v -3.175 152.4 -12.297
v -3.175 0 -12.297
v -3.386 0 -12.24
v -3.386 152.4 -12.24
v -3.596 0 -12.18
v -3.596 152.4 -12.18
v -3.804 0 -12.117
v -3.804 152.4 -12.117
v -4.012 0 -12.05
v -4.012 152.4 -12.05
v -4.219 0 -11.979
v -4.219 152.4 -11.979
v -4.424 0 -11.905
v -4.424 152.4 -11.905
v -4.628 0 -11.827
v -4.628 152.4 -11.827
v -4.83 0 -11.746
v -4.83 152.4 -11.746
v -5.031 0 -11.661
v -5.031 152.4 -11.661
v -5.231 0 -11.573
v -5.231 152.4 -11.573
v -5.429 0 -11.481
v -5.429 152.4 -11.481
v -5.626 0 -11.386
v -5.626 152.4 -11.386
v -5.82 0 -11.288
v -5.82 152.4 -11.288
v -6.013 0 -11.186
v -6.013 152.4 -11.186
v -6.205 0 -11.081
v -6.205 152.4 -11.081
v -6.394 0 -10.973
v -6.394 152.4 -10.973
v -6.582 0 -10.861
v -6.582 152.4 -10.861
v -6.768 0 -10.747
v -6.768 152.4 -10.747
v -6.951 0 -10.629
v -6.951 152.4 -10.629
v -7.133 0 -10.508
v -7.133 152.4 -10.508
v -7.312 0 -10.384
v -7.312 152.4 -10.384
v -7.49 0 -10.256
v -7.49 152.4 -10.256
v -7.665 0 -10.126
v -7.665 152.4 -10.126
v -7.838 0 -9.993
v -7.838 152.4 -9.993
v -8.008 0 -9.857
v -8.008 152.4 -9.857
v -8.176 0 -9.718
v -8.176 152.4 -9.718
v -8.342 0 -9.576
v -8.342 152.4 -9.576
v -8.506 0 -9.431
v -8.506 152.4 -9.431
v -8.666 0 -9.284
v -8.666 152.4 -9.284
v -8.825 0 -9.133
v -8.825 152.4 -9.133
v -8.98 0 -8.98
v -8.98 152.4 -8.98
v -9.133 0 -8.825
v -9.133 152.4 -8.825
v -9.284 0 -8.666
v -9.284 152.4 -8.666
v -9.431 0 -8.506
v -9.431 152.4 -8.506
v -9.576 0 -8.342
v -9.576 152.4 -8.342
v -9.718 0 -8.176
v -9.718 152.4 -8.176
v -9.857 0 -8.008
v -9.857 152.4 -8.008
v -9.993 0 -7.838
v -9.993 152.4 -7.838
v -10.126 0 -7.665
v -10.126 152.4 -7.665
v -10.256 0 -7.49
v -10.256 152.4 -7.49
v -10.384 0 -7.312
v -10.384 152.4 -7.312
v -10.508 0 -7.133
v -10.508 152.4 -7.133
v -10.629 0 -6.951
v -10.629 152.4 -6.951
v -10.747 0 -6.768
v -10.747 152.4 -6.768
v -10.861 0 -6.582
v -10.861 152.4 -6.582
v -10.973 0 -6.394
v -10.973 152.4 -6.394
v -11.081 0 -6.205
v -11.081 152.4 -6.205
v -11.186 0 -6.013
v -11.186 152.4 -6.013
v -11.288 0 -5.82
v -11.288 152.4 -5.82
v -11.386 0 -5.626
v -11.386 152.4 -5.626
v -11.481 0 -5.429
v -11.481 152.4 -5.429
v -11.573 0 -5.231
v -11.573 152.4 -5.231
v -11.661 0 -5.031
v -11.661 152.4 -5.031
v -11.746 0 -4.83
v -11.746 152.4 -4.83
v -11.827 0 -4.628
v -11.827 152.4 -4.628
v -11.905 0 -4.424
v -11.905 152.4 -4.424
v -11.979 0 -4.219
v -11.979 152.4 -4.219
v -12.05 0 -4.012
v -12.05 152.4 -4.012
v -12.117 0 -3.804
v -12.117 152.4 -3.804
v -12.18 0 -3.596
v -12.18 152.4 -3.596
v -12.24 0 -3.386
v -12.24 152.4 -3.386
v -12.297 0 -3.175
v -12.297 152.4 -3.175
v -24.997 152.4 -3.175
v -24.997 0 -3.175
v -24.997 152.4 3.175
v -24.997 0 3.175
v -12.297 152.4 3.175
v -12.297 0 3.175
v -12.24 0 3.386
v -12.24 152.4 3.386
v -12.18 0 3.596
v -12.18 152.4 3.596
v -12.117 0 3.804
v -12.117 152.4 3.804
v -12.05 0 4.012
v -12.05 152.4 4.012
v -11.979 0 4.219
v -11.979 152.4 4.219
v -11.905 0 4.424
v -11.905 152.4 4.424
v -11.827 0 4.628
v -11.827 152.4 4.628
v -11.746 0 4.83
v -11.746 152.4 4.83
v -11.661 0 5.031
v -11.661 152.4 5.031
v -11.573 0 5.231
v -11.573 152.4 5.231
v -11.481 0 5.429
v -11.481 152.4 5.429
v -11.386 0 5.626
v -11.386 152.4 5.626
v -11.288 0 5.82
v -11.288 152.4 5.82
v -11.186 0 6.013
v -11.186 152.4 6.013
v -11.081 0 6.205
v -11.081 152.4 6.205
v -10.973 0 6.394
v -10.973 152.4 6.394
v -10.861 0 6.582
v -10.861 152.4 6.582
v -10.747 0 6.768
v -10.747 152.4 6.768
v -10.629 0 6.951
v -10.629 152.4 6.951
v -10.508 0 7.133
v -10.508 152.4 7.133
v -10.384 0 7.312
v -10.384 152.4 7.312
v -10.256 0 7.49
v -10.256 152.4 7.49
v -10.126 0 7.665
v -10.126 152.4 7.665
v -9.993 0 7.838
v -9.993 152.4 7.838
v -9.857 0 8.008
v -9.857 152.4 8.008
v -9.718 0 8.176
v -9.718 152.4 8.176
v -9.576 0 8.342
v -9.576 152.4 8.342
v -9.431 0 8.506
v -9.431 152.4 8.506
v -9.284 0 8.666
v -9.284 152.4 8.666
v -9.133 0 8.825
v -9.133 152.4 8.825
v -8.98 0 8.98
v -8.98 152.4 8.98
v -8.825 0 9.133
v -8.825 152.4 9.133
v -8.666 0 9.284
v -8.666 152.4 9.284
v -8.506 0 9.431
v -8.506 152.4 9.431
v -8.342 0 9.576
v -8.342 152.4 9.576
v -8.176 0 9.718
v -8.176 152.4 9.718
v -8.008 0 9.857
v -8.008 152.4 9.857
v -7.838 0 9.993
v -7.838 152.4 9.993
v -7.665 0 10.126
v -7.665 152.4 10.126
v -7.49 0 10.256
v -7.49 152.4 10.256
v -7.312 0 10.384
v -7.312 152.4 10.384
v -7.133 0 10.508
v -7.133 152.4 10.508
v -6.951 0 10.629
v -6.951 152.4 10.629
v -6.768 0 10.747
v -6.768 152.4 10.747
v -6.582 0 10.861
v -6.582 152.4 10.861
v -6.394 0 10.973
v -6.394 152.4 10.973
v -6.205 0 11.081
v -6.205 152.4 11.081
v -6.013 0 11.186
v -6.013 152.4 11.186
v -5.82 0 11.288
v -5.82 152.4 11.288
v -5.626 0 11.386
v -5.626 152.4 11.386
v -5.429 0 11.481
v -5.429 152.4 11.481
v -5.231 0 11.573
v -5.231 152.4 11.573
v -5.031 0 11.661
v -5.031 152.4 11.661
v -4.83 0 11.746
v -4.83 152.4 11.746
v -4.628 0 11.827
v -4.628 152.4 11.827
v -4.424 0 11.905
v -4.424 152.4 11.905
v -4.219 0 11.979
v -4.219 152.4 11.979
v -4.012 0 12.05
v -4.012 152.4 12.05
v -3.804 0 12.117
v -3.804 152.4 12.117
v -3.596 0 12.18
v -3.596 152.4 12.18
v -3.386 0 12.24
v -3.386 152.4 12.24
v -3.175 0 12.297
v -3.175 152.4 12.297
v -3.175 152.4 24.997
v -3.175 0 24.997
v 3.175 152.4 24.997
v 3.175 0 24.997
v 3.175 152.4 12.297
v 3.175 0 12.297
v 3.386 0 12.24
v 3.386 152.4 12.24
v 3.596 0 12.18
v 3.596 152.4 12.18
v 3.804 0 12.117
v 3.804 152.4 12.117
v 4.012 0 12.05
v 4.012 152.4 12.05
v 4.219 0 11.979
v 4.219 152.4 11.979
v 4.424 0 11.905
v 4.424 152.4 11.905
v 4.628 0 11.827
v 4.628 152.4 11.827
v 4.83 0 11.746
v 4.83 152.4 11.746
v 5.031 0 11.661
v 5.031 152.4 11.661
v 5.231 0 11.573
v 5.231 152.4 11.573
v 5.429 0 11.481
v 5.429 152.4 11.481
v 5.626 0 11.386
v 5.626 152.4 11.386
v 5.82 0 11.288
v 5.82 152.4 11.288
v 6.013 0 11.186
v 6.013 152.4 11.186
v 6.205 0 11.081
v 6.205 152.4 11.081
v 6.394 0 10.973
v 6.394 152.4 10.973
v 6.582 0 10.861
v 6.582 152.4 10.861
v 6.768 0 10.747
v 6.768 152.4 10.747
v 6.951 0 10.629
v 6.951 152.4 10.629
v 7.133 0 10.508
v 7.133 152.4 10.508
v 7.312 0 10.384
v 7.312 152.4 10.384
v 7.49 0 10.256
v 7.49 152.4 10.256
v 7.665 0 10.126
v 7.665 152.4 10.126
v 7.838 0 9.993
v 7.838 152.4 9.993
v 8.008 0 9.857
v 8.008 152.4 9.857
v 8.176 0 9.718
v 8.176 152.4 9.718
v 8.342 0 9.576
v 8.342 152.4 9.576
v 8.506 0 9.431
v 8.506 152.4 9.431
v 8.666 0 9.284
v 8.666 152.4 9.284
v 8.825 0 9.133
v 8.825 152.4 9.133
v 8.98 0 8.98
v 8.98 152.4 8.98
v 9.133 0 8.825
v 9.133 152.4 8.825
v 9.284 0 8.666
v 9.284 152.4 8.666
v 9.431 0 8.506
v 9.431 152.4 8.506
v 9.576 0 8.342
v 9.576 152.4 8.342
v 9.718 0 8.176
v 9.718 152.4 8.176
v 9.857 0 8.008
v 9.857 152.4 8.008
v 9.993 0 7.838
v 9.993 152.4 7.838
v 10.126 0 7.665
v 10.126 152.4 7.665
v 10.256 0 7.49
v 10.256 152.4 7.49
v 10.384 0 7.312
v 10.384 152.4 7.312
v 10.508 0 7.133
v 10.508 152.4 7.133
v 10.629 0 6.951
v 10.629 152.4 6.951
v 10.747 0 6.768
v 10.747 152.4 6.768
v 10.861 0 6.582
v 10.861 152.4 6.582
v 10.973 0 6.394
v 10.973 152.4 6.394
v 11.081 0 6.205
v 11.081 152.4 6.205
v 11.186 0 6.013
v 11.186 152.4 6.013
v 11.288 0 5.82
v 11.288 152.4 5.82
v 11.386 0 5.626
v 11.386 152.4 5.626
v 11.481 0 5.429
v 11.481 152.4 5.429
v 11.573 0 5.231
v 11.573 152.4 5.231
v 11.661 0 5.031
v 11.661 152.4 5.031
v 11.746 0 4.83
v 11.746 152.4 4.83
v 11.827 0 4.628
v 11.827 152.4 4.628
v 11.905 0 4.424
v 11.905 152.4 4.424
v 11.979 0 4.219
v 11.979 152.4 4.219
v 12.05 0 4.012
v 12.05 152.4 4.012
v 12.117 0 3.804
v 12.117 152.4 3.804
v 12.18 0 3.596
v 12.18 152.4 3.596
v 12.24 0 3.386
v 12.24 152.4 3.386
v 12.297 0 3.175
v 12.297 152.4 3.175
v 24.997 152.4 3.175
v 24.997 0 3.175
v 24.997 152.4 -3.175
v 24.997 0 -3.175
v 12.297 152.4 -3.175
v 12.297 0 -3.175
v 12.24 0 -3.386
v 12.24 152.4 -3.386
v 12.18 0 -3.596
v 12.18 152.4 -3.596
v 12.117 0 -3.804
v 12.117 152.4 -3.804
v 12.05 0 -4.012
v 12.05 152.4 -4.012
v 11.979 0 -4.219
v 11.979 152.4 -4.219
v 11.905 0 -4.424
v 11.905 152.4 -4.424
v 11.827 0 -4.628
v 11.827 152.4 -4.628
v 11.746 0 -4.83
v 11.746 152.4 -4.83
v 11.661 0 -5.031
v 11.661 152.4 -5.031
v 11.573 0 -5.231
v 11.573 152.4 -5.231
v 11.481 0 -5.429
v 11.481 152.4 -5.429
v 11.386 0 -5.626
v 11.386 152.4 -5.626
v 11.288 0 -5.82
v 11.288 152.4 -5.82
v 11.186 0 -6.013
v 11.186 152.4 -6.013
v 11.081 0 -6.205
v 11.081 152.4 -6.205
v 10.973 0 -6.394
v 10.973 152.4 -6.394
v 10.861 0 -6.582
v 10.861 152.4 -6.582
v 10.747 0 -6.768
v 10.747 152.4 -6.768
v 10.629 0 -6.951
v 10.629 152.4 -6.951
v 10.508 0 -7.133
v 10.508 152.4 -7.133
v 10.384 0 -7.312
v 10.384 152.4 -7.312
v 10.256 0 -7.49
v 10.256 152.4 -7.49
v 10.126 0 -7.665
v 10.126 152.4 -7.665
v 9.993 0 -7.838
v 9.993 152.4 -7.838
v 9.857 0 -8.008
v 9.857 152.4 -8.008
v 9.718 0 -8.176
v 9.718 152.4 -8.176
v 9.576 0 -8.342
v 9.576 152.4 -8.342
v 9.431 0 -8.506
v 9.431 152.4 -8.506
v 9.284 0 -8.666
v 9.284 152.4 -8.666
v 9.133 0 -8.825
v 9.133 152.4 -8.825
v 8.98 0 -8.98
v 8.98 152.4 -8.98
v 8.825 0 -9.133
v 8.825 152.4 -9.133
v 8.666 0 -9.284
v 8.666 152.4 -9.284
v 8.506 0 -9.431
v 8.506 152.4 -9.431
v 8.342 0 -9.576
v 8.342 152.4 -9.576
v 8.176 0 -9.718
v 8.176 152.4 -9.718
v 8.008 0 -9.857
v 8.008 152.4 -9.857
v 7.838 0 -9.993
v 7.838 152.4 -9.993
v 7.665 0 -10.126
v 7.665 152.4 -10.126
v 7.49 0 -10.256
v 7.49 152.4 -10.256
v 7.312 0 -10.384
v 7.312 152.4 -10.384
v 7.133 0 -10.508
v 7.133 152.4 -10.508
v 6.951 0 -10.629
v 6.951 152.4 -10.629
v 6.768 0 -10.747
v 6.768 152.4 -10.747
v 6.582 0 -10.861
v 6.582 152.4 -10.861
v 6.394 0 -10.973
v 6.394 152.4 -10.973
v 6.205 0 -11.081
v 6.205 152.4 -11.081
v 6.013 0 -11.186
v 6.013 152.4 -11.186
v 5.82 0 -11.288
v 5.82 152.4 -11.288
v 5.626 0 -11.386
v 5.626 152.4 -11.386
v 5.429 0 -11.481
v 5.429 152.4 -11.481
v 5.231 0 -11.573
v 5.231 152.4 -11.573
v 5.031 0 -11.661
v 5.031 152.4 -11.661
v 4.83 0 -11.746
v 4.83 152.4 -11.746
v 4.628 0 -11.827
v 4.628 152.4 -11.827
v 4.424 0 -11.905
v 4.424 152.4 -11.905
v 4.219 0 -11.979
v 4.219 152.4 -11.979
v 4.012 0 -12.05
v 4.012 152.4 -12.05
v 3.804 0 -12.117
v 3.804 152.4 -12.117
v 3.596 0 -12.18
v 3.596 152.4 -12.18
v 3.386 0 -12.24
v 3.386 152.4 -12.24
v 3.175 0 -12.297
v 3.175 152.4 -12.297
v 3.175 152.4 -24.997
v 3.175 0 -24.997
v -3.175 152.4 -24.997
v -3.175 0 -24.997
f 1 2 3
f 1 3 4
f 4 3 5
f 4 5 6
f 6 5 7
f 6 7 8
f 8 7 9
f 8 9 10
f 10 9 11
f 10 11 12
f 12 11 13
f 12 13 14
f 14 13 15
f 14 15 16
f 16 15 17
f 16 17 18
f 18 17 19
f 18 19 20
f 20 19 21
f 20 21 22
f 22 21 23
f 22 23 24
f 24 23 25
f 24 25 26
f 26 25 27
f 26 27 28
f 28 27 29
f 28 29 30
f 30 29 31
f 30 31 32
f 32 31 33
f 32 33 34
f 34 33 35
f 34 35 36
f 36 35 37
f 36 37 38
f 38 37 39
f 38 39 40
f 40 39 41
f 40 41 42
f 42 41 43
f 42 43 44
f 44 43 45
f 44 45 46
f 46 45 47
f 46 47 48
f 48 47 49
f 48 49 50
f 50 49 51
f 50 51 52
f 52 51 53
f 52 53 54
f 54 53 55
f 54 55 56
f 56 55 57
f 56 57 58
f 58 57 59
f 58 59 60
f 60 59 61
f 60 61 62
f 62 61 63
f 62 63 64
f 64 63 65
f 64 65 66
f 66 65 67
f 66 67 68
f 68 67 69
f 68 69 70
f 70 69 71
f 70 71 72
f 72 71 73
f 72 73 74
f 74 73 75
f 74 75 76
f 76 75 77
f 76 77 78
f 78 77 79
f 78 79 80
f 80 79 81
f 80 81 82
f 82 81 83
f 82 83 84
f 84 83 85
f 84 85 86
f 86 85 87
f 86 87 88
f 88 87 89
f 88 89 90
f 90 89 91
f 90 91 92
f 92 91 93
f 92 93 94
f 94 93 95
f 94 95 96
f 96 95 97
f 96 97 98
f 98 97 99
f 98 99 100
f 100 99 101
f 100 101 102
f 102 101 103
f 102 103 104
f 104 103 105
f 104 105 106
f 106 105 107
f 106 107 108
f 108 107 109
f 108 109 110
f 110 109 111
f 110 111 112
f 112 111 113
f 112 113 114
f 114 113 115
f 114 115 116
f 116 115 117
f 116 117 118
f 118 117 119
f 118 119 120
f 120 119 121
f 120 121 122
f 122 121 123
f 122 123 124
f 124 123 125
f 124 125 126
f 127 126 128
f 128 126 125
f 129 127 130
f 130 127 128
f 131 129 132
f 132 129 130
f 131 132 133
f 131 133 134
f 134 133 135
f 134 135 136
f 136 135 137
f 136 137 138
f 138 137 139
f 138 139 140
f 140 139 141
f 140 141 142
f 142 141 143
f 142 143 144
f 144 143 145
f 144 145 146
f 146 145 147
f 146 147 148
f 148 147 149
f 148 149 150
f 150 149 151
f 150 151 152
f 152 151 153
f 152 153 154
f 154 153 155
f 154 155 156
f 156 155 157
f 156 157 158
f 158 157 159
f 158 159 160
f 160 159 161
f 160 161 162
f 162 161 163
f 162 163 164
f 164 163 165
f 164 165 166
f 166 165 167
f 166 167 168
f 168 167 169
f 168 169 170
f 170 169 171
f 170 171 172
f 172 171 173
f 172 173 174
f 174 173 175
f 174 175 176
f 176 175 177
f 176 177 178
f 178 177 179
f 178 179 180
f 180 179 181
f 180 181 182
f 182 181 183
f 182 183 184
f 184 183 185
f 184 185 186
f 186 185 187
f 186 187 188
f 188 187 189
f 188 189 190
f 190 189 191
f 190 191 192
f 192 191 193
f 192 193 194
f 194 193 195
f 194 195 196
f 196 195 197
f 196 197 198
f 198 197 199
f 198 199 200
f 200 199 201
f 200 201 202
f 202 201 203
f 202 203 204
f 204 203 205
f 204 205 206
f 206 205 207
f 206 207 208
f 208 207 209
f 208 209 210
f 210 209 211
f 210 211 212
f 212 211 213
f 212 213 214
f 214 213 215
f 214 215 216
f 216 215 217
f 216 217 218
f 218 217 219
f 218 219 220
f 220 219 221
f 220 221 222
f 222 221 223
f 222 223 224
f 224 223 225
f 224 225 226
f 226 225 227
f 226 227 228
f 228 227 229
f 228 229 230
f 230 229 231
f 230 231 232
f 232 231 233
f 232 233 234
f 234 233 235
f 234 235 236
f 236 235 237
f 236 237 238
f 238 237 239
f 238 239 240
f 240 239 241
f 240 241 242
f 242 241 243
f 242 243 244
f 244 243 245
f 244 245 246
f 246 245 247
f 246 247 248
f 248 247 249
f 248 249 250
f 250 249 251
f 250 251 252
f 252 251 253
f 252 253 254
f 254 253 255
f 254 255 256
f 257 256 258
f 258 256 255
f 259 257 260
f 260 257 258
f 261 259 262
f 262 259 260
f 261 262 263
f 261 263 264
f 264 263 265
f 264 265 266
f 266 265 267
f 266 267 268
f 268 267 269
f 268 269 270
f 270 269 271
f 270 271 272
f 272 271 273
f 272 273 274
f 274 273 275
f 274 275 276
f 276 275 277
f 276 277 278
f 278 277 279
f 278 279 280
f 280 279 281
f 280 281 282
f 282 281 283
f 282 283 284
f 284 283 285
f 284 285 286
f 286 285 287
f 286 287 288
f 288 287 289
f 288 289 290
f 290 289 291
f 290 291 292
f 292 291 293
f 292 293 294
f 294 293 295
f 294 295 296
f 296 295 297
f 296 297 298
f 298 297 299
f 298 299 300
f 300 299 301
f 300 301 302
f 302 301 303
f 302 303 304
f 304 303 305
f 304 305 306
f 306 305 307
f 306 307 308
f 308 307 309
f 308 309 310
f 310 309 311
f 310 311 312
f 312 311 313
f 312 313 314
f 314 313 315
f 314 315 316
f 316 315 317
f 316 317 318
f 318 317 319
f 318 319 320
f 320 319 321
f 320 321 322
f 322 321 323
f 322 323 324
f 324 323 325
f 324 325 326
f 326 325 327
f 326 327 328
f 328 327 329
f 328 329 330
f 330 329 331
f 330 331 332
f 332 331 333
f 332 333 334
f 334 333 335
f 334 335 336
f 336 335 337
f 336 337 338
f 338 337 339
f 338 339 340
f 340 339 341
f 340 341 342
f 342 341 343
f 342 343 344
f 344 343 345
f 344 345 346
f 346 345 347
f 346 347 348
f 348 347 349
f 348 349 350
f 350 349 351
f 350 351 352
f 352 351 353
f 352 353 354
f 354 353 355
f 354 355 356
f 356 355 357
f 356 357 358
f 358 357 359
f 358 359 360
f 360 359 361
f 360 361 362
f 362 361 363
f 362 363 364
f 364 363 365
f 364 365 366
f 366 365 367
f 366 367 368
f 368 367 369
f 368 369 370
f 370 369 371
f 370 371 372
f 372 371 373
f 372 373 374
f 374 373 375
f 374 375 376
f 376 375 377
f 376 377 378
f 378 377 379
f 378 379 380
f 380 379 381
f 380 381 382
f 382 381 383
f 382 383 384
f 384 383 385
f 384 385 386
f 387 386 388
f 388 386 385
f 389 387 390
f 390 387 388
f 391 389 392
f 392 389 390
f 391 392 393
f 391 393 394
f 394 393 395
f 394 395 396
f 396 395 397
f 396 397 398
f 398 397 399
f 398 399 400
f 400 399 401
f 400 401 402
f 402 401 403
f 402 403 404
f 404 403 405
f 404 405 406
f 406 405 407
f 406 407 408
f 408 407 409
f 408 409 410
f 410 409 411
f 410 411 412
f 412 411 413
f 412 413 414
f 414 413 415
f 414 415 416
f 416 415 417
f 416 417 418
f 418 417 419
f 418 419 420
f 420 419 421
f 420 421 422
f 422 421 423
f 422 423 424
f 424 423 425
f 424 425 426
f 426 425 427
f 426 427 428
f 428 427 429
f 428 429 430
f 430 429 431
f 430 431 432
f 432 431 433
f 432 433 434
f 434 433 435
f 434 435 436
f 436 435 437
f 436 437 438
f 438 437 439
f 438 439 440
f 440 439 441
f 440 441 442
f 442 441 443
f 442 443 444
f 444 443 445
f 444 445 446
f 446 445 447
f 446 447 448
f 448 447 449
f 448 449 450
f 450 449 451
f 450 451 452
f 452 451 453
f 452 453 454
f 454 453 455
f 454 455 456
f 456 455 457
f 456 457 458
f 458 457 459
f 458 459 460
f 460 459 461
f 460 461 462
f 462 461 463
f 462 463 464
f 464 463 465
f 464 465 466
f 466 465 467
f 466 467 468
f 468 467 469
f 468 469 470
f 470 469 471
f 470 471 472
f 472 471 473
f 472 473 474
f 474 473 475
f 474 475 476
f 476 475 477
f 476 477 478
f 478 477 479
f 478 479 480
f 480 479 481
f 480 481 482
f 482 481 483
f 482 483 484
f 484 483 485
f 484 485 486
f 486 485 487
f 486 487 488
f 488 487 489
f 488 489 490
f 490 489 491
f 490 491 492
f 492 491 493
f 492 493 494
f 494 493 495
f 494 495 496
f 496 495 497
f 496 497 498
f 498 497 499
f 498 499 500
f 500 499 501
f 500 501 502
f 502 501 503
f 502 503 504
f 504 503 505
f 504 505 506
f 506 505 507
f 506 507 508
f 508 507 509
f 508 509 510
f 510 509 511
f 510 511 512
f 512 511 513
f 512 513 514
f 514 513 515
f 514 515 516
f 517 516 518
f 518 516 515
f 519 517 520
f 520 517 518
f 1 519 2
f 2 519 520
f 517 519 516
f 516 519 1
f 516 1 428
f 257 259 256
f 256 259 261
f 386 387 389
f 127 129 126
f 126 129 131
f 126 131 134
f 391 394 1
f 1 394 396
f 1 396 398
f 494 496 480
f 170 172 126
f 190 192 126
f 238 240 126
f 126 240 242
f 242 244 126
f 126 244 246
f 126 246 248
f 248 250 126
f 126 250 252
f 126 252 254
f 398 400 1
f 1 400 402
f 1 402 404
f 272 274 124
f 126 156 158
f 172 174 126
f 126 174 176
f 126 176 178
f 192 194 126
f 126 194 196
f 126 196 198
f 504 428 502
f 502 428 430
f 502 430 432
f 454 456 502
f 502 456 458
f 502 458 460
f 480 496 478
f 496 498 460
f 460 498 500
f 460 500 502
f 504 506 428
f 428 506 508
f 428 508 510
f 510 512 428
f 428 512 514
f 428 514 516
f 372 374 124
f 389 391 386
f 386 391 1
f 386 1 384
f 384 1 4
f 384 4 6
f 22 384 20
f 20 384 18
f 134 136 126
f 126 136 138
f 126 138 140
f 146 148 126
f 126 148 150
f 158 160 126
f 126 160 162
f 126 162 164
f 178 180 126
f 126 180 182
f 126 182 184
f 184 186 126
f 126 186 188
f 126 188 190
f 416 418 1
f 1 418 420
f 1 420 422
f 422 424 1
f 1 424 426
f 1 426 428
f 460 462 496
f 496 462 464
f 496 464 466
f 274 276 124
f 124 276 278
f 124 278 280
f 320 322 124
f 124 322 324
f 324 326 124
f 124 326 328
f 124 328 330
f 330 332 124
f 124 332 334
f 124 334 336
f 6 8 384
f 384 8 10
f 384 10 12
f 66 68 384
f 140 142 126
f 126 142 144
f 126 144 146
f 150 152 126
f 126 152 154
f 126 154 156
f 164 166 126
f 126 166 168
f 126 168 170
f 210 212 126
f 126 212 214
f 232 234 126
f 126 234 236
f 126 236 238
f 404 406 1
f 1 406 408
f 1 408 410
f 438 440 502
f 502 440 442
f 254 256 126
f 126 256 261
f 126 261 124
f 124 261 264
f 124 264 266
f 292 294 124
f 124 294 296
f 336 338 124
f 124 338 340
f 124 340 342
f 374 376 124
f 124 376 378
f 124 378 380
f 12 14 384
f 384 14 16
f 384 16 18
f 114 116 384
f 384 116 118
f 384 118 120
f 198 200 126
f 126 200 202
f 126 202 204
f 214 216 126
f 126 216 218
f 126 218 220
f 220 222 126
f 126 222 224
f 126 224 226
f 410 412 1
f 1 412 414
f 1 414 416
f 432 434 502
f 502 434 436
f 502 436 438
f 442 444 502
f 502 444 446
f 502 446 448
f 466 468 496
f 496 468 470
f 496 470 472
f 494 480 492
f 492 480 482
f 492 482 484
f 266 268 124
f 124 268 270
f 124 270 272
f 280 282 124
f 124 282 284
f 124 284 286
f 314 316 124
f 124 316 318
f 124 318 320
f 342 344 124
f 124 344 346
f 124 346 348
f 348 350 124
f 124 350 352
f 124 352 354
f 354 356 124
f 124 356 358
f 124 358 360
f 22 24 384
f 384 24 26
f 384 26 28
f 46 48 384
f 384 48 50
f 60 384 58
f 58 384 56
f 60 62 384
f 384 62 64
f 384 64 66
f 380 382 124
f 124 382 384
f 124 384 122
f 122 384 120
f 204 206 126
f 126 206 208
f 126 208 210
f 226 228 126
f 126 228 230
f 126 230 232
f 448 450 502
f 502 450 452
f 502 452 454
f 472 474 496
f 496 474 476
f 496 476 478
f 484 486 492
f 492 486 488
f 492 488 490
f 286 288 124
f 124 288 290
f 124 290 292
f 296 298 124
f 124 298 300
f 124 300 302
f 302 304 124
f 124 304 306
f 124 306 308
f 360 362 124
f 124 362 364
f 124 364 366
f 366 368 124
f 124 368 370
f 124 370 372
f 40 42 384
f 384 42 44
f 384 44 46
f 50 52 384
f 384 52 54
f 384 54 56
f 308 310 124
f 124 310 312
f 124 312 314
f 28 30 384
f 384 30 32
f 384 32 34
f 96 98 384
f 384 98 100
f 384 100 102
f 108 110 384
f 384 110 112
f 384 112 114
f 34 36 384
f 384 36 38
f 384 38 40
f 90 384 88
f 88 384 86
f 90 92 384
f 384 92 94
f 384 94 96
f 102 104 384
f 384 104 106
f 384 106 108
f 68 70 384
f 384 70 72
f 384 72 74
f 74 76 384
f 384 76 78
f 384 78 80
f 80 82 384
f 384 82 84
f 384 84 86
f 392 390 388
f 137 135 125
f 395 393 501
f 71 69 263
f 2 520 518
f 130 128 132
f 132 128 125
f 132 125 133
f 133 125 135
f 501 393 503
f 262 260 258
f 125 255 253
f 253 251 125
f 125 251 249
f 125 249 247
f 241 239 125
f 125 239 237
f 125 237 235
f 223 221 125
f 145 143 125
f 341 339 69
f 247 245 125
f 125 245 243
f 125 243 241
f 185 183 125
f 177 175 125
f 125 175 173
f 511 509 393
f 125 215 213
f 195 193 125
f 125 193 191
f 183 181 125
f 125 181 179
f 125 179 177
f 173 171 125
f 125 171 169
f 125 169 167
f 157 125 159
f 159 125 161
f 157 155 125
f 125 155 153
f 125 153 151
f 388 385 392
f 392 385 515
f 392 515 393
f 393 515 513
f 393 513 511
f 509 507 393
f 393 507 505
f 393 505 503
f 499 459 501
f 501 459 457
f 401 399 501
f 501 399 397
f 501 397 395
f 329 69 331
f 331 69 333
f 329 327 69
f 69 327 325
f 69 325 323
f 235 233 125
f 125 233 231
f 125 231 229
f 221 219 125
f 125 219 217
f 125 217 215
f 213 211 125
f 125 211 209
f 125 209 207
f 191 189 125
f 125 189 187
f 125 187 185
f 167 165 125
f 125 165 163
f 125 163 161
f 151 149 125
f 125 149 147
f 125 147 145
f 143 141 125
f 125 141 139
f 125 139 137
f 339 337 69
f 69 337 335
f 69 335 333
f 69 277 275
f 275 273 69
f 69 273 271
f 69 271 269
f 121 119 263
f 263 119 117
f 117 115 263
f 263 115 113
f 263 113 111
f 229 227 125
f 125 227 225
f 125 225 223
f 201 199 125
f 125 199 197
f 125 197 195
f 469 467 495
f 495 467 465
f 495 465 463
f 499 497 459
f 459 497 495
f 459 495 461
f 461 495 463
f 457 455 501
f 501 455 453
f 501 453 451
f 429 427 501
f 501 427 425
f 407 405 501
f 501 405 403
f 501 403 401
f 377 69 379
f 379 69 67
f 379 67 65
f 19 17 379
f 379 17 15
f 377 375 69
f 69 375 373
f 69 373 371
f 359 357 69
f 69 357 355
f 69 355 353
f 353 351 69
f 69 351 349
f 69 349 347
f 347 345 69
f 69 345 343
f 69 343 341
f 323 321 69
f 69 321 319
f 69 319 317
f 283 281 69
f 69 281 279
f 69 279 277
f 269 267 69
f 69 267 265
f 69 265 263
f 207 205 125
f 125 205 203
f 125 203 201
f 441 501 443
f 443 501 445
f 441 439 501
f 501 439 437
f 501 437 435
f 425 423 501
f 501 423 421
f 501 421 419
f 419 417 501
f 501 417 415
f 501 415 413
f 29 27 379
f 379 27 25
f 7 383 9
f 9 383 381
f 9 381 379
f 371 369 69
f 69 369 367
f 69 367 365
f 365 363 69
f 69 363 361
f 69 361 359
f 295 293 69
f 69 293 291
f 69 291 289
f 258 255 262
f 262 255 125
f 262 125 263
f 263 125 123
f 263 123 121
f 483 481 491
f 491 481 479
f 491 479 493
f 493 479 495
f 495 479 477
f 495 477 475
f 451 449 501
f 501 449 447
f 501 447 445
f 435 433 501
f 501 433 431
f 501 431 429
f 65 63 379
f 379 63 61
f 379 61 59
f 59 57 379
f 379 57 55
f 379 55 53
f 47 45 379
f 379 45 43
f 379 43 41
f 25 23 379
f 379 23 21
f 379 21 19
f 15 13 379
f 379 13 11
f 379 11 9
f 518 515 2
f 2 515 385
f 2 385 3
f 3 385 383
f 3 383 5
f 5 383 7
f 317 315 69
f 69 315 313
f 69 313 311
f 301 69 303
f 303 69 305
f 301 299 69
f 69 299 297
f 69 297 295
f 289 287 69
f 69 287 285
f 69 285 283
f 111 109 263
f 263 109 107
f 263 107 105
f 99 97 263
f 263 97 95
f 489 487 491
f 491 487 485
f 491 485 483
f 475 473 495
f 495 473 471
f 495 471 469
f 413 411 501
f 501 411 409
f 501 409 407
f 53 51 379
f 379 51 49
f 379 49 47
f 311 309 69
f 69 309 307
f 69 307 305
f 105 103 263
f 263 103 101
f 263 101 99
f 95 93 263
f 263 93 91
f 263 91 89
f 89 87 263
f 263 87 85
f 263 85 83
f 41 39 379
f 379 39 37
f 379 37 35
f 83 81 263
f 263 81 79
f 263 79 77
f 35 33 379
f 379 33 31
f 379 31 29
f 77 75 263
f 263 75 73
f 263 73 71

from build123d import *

# Parameters (mm, degrees)
BOSS_EXTRUDE1_DEPTH = 152.4


with BuildPart() as part:
    # Sketch1 → Boss-Extrude1 (new body)
    with BuildSketch(Plane(origin=(0, 0, 0), x_dir=(1, 0, 0), z_dir=(0, 1, 0))):
        with BuildLine():
            ThreePointArc((3.175, 12.296722124), (0, 12.7), (-3.175, 12.296722124))
            Line((-3.175, 12.296722124), (3.175, 12.296722124))
        make_face()
        with BuildLine():
            Line((3.175, 12.296722124), (-3.175, 12.296722124))
            ThreePointArc((-3.175, 12.296722124), (-8.980256121, 8.980256121), (-12.296722124, 3.175))
            ThreePointArc((-12.296722124, 3.175), (-12.7, 0), (-12.296722124, -3.175))
            ThreePointArc((-12.296722124, -3.175), (-8.980256121, -8.980256121), (-3.175, -12.296722124))
            ThreePointArc((-3.175, -12.296722124), (0, -12.7), (3.175, -12.296722124))
            ThreePointArc((3.175, -12.296722124), (8.980256121, -8.980256121), (12.296722124, -3.175))
            ThreePointArc((12.296722124, -3.175), (12.598777143, -1.600254515), (12.7, 0))
            ThreePointArc((12.7, 0), (12.598777143, 1.600254515), (12.296722124, 3.175))
            ThreePointArc((12.296722124, 3.175), (8.980256121, 8.980256121), (3.175, 12.296722124))
        make_face()
        with BuildLine():
            ThreePointArc((-12.296722124, -3.175), (-12.7, 0), (-12.296722124, 3.175))
            Line((-12.296722124, 3.175), (-24.996722124, 3.175))
            Line((-24.996722124, 3.175), (-24.996722124, -3.175))
            Line((-24.996722124, -3.175), (-12.296722124, -3.175))
        make_face()
        with BuildLine():
            ThreePointArc((3.175, -12.296722124), (0, -12.7), (-3.175, -12.296722124))
            Line((-3.175, -12.296722124), (-3.175, -24.996722124))
            Line((-3.175, -24.996722124), (3.175, -24.996722124))
            Line((3.175, -24.996722124), (3.175, -12.296722124))
        make_face()
        with BuildLine():
            Line((24.996722124, 3.175), (12.296722124, 3.175))
            ThreePointArc((12.296722124, 3.175), (12.598777143, 1.600254515), (12.7, 0))
            ThreePointArc((12.7, 0), (12.598777143, -1.600254515), (12.296722124, -3.175))
            Line((12.296722124, -3.175), (24.996722124, -3.175))
            Line((24.996722124, -3.175), (24.996722124, 3.175))
        make_face()
        with BuildLine():
            Line((-3.175, 24.996722124), (-3.175, 12.296722124))
            ThreePointArc((-3.175, 12.296722124), (0, 12.7), (3.175, 12.296722124))
            Line((3.175, 12.296722124), (3.175, 24.996722124))
            Line((3.175, 24.996722124), (-3.175, 24.996722124))
        make_face()
    extrude(amount=BOSS_EXTRUDE1_DEPTH)


solid = part.part
